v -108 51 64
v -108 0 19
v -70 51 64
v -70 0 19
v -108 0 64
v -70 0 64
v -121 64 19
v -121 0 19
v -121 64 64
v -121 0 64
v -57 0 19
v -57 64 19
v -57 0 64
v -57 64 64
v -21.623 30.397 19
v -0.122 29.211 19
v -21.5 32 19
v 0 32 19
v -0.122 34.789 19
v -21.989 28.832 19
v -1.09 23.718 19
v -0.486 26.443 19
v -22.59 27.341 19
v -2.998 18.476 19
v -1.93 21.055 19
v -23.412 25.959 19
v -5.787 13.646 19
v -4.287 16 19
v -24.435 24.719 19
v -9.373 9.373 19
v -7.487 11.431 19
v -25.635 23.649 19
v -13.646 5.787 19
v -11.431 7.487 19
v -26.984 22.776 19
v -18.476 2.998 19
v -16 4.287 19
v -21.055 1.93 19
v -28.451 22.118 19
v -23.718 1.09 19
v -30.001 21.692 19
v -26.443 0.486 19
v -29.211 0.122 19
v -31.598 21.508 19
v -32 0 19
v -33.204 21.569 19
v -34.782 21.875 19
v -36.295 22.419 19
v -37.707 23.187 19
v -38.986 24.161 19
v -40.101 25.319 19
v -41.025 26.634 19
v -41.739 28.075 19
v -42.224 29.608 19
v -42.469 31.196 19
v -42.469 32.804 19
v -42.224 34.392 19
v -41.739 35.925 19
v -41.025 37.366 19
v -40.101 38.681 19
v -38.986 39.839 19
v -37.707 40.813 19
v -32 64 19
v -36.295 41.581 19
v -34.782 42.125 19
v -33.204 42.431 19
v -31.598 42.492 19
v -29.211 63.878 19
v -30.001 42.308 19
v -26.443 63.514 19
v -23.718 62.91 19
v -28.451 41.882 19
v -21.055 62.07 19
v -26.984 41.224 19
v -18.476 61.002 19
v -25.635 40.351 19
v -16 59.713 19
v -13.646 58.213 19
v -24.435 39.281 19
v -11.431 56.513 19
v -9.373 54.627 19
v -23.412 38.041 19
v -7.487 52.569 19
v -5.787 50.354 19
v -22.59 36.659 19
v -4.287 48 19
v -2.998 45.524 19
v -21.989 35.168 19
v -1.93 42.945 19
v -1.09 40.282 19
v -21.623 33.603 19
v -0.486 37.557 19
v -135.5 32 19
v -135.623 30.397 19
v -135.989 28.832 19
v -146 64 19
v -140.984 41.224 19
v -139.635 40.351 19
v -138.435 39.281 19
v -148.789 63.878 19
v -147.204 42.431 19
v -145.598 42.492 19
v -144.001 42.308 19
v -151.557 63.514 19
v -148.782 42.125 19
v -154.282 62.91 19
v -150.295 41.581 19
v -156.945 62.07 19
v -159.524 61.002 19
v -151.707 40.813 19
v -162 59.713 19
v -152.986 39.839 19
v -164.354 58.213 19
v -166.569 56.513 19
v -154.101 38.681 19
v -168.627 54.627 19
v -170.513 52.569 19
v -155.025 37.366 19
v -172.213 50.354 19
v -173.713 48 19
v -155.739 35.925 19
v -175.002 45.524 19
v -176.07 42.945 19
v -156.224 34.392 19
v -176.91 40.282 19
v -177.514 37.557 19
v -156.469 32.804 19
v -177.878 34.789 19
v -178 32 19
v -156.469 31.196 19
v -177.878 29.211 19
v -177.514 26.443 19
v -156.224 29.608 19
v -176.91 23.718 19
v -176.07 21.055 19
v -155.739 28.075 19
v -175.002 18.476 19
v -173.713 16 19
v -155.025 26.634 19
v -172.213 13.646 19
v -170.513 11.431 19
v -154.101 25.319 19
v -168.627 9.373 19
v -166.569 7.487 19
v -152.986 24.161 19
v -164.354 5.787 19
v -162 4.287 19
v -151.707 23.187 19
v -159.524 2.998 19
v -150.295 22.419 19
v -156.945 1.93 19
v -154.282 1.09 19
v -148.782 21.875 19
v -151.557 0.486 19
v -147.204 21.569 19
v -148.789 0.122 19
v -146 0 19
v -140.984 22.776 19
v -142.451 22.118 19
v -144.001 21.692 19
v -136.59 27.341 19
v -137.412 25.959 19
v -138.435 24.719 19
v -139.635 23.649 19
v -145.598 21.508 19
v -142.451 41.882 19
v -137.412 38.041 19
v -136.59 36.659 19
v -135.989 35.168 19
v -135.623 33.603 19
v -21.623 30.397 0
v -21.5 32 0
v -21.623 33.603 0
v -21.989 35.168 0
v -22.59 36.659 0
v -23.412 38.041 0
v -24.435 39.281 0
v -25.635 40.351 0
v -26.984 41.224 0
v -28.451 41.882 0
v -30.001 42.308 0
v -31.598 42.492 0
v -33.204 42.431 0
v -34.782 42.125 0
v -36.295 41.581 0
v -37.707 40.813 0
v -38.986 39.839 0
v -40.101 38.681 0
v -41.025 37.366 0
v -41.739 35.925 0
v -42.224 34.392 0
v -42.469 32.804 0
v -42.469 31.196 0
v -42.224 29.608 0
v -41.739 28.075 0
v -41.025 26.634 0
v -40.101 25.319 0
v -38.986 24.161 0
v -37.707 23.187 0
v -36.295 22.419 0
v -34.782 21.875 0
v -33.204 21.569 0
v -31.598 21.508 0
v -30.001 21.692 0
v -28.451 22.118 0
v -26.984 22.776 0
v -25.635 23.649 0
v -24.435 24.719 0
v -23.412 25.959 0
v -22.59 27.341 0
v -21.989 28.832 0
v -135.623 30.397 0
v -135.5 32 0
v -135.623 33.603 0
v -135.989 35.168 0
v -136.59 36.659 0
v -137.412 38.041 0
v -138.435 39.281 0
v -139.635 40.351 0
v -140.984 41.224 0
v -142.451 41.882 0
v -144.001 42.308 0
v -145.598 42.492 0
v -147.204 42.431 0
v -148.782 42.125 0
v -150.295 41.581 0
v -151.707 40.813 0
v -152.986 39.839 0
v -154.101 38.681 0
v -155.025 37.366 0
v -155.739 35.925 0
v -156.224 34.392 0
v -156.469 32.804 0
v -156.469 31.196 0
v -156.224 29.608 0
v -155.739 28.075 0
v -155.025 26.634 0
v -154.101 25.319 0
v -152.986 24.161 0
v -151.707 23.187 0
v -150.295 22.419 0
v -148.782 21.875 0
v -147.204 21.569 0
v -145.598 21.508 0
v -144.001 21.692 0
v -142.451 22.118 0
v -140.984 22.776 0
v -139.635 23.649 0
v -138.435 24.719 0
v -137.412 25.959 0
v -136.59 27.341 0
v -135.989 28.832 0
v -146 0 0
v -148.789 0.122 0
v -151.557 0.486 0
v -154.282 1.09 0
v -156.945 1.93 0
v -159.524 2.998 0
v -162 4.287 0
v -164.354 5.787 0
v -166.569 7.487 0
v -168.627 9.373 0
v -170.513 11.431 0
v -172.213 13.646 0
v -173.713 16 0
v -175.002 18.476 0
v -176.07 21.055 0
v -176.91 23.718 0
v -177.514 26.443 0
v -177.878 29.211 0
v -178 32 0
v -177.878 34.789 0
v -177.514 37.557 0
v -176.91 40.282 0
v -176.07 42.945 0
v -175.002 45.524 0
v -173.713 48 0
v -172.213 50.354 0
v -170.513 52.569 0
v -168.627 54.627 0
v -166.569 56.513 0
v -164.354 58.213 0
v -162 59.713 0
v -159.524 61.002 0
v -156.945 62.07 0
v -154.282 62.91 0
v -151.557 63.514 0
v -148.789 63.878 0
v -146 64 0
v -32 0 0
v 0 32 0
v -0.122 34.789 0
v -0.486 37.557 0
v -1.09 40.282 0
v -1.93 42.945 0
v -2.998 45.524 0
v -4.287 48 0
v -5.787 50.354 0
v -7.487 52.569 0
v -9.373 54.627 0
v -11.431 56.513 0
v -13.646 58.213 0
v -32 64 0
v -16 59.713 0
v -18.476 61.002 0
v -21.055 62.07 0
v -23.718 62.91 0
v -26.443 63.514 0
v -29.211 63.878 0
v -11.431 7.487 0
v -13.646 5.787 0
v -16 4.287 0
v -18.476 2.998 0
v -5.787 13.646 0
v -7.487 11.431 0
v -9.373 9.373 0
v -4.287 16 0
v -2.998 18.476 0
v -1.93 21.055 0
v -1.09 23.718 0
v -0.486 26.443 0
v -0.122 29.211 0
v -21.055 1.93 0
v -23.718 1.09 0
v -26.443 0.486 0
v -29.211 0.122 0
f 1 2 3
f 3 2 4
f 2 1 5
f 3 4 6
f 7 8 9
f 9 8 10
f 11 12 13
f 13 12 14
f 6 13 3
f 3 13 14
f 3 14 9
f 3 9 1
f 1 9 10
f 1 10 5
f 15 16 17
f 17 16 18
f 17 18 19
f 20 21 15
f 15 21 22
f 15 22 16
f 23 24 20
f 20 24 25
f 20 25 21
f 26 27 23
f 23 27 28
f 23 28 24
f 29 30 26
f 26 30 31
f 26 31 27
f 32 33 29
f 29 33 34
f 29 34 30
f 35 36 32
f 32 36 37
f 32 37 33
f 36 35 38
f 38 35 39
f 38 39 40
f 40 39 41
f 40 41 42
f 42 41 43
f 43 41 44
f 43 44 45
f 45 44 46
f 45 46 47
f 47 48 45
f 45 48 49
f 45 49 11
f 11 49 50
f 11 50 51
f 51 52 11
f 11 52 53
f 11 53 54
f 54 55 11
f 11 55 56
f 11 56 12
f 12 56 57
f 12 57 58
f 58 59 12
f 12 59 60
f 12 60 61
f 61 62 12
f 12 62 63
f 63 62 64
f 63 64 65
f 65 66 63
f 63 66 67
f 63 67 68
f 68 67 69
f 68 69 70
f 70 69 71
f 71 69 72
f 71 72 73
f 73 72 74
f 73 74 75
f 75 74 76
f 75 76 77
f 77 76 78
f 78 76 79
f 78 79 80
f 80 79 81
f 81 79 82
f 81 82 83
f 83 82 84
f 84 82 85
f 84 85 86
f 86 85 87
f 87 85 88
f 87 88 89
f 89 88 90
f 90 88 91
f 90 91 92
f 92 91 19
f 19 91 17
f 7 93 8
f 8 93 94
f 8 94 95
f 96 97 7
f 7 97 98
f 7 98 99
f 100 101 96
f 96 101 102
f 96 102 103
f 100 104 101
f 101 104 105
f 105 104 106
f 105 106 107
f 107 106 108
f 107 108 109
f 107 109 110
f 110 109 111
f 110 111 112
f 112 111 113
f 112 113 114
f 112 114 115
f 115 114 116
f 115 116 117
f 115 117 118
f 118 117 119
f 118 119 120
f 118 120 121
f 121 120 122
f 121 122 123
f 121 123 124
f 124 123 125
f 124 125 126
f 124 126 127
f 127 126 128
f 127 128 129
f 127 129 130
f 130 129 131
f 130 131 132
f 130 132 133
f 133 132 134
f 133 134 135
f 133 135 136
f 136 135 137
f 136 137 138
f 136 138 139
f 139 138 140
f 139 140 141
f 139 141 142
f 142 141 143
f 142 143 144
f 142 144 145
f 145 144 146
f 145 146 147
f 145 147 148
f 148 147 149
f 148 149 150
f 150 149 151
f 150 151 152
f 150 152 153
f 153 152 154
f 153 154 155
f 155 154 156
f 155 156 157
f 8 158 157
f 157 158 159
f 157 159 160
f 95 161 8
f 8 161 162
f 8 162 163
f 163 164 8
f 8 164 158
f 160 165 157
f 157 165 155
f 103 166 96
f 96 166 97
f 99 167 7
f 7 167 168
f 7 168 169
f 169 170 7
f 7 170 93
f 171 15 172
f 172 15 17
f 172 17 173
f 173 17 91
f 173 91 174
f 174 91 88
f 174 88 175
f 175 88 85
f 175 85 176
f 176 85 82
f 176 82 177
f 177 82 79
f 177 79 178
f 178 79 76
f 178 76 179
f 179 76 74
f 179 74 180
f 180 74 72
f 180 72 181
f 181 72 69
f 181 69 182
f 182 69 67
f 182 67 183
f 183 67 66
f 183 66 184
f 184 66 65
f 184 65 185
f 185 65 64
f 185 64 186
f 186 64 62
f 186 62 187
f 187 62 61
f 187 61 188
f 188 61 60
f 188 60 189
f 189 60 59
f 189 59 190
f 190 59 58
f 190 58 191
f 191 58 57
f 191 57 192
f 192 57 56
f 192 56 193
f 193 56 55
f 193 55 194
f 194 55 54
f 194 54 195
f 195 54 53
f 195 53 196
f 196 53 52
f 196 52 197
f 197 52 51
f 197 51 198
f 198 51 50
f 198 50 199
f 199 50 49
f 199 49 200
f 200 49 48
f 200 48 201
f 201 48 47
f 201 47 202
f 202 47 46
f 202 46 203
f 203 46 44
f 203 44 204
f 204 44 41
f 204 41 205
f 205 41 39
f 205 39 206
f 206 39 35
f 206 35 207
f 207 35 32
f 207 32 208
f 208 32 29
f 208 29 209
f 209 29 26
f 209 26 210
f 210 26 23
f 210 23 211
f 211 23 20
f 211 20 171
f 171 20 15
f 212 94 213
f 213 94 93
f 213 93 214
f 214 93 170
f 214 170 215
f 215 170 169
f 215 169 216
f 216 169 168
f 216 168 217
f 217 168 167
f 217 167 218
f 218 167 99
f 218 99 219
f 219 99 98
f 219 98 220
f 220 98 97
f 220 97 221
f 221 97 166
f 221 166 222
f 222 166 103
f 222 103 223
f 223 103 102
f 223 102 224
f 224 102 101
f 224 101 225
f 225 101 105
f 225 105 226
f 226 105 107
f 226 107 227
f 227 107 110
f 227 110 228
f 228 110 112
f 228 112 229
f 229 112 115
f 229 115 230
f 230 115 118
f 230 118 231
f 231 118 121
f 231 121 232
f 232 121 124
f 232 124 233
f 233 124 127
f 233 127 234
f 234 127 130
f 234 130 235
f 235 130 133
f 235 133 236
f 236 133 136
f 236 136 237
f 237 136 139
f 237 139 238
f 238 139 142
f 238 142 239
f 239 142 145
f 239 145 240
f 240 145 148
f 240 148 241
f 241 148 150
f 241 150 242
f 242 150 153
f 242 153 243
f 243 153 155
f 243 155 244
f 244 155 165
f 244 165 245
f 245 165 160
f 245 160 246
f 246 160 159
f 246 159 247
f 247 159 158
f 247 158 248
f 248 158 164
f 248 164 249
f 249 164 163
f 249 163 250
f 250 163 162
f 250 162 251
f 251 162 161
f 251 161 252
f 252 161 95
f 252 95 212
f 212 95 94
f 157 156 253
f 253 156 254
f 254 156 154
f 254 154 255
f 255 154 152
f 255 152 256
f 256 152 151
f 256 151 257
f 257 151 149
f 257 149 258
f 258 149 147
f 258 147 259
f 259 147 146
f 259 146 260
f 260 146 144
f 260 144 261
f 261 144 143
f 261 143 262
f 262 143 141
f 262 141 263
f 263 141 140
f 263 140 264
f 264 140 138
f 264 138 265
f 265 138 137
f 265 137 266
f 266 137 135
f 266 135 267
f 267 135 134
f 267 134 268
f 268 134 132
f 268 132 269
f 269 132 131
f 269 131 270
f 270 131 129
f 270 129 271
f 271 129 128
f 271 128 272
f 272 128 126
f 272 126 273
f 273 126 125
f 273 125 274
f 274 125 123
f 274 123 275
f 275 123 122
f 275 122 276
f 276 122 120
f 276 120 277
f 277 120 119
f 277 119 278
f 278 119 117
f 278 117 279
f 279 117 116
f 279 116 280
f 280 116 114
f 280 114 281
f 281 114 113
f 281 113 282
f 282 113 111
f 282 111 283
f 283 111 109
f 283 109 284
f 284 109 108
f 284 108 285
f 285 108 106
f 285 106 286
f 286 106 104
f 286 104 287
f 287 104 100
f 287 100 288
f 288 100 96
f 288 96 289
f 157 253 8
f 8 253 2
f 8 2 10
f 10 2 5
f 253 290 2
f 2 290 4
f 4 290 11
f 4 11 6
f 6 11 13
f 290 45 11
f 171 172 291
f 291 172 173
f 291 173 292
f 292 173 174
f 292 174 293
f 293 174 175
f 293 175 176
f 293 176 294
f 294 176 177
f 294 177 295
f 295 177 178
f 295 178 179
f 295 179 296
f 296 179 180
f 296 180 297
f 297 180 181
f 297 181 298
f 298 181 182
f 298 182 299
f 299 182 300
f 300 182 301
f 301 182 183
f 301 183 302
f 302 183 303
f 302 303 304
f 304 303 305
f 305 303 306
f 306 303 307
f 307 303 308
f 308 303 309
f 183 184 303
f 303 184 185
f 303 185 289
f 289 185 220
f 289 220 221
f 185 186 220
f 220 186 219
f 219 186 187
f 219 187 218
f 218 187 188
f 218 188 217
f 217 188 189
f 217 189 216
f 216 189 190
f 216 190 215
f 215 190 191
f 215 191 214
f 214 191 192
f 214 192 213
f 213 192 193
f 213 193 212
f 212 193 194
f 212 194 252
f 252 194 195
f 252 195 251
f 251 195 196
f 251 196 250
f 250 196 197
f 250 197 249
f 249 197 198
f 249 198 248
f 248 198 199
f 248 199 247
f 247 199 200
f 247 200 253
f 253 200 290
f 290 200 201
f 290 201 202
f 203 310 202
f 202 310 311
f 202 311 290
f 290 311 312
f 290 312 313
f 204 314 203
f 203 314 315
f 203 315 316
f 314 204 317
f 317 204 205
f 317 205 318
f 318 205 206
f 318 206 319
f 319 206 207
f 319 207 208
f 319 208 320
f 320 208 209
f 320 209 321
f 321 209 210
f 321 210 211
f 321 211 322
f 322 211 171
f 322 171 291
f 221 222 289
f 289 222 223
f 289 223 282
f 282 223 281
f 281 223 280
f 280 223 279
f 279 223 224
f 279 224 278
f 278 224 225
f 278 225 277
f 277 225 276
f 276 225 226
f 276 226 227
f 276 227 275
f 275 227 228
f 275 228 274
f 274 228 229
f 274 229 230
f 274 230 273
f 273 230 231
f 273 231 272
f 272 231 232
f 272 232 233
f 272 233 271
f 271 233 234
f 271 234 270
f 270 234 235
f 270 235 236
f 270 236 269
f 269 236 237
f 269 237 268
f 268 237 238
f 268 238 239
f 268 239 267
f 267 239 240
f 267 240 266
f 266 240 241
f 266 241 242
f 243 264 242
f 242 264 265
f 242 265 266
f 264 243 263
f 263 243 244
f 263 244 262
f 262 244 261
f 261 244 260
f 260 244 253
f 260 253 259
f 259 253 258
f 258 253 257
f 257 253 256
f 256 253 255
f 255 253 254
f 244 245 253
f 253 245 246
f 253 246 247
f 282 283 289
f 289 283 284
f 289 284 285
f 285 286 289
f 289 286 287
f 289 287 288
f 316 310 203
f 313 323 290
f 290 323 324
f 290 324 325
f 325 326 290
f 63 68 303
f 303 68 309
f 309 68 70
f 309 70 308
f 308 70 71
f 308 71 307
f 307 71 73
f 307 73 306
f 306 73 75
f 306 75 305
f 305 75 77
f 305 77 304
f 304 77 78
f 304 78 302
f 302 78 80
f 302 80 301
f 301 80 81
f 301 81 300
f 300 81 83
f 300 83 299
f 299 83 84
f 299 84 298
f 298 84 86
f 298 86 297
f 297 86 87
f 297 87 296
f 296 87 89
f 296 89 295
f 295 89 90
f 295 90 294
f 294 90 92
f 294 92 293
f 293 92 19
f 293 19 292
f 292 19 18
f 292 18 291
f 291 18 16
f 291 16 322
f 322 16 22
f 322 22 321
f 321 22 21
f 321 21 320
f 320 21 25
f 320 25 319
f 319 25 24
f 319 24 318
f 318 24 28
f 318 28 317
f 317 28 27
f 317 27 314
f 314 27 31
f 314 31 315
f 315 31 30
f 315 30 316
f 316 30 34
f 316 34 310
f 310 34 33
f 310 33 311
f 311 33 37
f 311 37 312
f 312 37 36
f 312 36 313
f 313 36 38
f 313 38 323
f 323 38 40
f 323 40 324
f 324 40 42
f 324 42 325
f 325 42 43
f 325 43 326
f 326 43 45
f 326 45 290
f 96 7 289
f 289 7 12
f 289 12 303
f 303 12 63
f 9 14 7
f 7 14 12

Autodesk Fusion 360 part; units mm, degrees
sketch "Sketch1" plane through (0, 0, 0) normal (0, 0, 1) x (1, 0, 0)
  line L0 (0, 0) -> (-178, 0)
  line L1 (-178, 0) -> (-178, 64)
  line L2 (-178, 64) -> (0, 64)
  line L3 (0, 64) -> (0, 0)
  dimension "d1" = 64
  dimension "d2" = 178
extrude "Extrude1" add sketch "Sketch1" along normal blind 19
fillet "Fillet1" radius 32 4 edges at (0, 0, 9.5) (0, 64, 9.5) (-178, 0, 9.5) (-178, 64, 9.5)
sketch "Sketch2" plane through (0, 0, 19) normal (0, 0, 1) x (-1, 0, 0)
  arc A0 (146, -64) -> (146, 0) centre (146, -32) ccw
  line L0 (146, 0) -> (32, 0)
  arc A1 (32, 0) -> (32, -64) centre (32, -32) ccw
  line L1 (32, -64) -> (146, -64)
  line L2 (89, -64) -> (89, 0) construction
  circle A2 centre (32, -32) radius 10.5
  circle A3 centre (146, -32) radius 10.5
  dimension "d6" = 21
extrude "Extrude2" cut sketch "Sketch2" against normal blind 90 contours A2 | A3
sketch "Sketch3" plane through (0, 0, 19) normal (0, 0, 1) x (-1, 0, 0)
  circle A0 centre (32, -32) radius 10.5
  circle A1 centre (146, -32) radius 10.5
  arc A2 (146, -64) -> (146, 0) centre (146, -32) ccw
  line L0 (146, 0) -> (32, 0)
  arc A3 (32, 0) -> (32, -64) centre (32, -32) ccw
  line L1 (32, -64) -> (146, -64)
  line L2 (146, -64) -> (32, -64) construction
  line L3 (89, -64) -> (89, 0) construction
  line L4 (89, -64) -> (57, -64)
  line L5 (121, -64) -> (108, -64)
  line L6 (108, -64) -> (108, 0)
  line L7 (108, 0) -> (121, 0)
  line L8 (121, 0) -> (121, -64)
  line L9 (121, -64) -> (108, -64)
  line L10 (108, -64) -> (108, 0)
  line L11 (108, 0) -> (121, 0)
  line L12 (121, 0) -> (121, -64)
  line L13 (70, -64) -> (70, 0)
  line L14 (57, -64) -> (70, -64)
  line L15 (57, 0) -> (57, -64)
  line L16 (70, 0) -> (57, 0)
  line L17 (108, -64) -> (70, -64)
  line L18 (70, -64) -> (70, -51)
  line L19 (70, -51) -> (108, -51)
  line L20 (108, -51) -> (108, -64)
  dimension "d9" = 32
  dimension "d10" = 32
  dimension "d11" = 13
  dimension "d12" = 64
  dimension "d13" = 13
extrude "Extrude3" add sketch "Sketch3" along normal blind 45 contours L0 L1 L5 L6 L7 L8 L9 L10 L11 L12 L20 | L1 L4 L6 L10 L13 L17 L18 L19 L20 | L0 L1 L4 L13 L14 L15 L16 L18
sketch "Sketch4" plane through (-108, 0, 0) normal (1, 0, 0) x (0, 1, 0)
  line L0 (0, 19) -> (51, 19)
  line L1 (51, 19) -> (51, 64)
  line L2 (51, 64) -> (0, 64)
  line L3 (0, 64) -> (0, 19)
  line L4 (51, 64) -> (0, 19)
  line L5 (51, 19) -> (51, 64)
  line L6 (51, 19) -> (0, 19)
extrude "Extrude4" add sketch "Sketch4" along normal blind 38 contours L0 L1 L4 L5 L6
equation "d2 = 114 mm + 32 mm + 32 mm"
equation "d11 = ( ( 64 - 38 ) / 2 ) * 1 mm"
equation "d13 = 64 mm - 51 mm"
equation "d14 = 64 mm - 19 mm"
